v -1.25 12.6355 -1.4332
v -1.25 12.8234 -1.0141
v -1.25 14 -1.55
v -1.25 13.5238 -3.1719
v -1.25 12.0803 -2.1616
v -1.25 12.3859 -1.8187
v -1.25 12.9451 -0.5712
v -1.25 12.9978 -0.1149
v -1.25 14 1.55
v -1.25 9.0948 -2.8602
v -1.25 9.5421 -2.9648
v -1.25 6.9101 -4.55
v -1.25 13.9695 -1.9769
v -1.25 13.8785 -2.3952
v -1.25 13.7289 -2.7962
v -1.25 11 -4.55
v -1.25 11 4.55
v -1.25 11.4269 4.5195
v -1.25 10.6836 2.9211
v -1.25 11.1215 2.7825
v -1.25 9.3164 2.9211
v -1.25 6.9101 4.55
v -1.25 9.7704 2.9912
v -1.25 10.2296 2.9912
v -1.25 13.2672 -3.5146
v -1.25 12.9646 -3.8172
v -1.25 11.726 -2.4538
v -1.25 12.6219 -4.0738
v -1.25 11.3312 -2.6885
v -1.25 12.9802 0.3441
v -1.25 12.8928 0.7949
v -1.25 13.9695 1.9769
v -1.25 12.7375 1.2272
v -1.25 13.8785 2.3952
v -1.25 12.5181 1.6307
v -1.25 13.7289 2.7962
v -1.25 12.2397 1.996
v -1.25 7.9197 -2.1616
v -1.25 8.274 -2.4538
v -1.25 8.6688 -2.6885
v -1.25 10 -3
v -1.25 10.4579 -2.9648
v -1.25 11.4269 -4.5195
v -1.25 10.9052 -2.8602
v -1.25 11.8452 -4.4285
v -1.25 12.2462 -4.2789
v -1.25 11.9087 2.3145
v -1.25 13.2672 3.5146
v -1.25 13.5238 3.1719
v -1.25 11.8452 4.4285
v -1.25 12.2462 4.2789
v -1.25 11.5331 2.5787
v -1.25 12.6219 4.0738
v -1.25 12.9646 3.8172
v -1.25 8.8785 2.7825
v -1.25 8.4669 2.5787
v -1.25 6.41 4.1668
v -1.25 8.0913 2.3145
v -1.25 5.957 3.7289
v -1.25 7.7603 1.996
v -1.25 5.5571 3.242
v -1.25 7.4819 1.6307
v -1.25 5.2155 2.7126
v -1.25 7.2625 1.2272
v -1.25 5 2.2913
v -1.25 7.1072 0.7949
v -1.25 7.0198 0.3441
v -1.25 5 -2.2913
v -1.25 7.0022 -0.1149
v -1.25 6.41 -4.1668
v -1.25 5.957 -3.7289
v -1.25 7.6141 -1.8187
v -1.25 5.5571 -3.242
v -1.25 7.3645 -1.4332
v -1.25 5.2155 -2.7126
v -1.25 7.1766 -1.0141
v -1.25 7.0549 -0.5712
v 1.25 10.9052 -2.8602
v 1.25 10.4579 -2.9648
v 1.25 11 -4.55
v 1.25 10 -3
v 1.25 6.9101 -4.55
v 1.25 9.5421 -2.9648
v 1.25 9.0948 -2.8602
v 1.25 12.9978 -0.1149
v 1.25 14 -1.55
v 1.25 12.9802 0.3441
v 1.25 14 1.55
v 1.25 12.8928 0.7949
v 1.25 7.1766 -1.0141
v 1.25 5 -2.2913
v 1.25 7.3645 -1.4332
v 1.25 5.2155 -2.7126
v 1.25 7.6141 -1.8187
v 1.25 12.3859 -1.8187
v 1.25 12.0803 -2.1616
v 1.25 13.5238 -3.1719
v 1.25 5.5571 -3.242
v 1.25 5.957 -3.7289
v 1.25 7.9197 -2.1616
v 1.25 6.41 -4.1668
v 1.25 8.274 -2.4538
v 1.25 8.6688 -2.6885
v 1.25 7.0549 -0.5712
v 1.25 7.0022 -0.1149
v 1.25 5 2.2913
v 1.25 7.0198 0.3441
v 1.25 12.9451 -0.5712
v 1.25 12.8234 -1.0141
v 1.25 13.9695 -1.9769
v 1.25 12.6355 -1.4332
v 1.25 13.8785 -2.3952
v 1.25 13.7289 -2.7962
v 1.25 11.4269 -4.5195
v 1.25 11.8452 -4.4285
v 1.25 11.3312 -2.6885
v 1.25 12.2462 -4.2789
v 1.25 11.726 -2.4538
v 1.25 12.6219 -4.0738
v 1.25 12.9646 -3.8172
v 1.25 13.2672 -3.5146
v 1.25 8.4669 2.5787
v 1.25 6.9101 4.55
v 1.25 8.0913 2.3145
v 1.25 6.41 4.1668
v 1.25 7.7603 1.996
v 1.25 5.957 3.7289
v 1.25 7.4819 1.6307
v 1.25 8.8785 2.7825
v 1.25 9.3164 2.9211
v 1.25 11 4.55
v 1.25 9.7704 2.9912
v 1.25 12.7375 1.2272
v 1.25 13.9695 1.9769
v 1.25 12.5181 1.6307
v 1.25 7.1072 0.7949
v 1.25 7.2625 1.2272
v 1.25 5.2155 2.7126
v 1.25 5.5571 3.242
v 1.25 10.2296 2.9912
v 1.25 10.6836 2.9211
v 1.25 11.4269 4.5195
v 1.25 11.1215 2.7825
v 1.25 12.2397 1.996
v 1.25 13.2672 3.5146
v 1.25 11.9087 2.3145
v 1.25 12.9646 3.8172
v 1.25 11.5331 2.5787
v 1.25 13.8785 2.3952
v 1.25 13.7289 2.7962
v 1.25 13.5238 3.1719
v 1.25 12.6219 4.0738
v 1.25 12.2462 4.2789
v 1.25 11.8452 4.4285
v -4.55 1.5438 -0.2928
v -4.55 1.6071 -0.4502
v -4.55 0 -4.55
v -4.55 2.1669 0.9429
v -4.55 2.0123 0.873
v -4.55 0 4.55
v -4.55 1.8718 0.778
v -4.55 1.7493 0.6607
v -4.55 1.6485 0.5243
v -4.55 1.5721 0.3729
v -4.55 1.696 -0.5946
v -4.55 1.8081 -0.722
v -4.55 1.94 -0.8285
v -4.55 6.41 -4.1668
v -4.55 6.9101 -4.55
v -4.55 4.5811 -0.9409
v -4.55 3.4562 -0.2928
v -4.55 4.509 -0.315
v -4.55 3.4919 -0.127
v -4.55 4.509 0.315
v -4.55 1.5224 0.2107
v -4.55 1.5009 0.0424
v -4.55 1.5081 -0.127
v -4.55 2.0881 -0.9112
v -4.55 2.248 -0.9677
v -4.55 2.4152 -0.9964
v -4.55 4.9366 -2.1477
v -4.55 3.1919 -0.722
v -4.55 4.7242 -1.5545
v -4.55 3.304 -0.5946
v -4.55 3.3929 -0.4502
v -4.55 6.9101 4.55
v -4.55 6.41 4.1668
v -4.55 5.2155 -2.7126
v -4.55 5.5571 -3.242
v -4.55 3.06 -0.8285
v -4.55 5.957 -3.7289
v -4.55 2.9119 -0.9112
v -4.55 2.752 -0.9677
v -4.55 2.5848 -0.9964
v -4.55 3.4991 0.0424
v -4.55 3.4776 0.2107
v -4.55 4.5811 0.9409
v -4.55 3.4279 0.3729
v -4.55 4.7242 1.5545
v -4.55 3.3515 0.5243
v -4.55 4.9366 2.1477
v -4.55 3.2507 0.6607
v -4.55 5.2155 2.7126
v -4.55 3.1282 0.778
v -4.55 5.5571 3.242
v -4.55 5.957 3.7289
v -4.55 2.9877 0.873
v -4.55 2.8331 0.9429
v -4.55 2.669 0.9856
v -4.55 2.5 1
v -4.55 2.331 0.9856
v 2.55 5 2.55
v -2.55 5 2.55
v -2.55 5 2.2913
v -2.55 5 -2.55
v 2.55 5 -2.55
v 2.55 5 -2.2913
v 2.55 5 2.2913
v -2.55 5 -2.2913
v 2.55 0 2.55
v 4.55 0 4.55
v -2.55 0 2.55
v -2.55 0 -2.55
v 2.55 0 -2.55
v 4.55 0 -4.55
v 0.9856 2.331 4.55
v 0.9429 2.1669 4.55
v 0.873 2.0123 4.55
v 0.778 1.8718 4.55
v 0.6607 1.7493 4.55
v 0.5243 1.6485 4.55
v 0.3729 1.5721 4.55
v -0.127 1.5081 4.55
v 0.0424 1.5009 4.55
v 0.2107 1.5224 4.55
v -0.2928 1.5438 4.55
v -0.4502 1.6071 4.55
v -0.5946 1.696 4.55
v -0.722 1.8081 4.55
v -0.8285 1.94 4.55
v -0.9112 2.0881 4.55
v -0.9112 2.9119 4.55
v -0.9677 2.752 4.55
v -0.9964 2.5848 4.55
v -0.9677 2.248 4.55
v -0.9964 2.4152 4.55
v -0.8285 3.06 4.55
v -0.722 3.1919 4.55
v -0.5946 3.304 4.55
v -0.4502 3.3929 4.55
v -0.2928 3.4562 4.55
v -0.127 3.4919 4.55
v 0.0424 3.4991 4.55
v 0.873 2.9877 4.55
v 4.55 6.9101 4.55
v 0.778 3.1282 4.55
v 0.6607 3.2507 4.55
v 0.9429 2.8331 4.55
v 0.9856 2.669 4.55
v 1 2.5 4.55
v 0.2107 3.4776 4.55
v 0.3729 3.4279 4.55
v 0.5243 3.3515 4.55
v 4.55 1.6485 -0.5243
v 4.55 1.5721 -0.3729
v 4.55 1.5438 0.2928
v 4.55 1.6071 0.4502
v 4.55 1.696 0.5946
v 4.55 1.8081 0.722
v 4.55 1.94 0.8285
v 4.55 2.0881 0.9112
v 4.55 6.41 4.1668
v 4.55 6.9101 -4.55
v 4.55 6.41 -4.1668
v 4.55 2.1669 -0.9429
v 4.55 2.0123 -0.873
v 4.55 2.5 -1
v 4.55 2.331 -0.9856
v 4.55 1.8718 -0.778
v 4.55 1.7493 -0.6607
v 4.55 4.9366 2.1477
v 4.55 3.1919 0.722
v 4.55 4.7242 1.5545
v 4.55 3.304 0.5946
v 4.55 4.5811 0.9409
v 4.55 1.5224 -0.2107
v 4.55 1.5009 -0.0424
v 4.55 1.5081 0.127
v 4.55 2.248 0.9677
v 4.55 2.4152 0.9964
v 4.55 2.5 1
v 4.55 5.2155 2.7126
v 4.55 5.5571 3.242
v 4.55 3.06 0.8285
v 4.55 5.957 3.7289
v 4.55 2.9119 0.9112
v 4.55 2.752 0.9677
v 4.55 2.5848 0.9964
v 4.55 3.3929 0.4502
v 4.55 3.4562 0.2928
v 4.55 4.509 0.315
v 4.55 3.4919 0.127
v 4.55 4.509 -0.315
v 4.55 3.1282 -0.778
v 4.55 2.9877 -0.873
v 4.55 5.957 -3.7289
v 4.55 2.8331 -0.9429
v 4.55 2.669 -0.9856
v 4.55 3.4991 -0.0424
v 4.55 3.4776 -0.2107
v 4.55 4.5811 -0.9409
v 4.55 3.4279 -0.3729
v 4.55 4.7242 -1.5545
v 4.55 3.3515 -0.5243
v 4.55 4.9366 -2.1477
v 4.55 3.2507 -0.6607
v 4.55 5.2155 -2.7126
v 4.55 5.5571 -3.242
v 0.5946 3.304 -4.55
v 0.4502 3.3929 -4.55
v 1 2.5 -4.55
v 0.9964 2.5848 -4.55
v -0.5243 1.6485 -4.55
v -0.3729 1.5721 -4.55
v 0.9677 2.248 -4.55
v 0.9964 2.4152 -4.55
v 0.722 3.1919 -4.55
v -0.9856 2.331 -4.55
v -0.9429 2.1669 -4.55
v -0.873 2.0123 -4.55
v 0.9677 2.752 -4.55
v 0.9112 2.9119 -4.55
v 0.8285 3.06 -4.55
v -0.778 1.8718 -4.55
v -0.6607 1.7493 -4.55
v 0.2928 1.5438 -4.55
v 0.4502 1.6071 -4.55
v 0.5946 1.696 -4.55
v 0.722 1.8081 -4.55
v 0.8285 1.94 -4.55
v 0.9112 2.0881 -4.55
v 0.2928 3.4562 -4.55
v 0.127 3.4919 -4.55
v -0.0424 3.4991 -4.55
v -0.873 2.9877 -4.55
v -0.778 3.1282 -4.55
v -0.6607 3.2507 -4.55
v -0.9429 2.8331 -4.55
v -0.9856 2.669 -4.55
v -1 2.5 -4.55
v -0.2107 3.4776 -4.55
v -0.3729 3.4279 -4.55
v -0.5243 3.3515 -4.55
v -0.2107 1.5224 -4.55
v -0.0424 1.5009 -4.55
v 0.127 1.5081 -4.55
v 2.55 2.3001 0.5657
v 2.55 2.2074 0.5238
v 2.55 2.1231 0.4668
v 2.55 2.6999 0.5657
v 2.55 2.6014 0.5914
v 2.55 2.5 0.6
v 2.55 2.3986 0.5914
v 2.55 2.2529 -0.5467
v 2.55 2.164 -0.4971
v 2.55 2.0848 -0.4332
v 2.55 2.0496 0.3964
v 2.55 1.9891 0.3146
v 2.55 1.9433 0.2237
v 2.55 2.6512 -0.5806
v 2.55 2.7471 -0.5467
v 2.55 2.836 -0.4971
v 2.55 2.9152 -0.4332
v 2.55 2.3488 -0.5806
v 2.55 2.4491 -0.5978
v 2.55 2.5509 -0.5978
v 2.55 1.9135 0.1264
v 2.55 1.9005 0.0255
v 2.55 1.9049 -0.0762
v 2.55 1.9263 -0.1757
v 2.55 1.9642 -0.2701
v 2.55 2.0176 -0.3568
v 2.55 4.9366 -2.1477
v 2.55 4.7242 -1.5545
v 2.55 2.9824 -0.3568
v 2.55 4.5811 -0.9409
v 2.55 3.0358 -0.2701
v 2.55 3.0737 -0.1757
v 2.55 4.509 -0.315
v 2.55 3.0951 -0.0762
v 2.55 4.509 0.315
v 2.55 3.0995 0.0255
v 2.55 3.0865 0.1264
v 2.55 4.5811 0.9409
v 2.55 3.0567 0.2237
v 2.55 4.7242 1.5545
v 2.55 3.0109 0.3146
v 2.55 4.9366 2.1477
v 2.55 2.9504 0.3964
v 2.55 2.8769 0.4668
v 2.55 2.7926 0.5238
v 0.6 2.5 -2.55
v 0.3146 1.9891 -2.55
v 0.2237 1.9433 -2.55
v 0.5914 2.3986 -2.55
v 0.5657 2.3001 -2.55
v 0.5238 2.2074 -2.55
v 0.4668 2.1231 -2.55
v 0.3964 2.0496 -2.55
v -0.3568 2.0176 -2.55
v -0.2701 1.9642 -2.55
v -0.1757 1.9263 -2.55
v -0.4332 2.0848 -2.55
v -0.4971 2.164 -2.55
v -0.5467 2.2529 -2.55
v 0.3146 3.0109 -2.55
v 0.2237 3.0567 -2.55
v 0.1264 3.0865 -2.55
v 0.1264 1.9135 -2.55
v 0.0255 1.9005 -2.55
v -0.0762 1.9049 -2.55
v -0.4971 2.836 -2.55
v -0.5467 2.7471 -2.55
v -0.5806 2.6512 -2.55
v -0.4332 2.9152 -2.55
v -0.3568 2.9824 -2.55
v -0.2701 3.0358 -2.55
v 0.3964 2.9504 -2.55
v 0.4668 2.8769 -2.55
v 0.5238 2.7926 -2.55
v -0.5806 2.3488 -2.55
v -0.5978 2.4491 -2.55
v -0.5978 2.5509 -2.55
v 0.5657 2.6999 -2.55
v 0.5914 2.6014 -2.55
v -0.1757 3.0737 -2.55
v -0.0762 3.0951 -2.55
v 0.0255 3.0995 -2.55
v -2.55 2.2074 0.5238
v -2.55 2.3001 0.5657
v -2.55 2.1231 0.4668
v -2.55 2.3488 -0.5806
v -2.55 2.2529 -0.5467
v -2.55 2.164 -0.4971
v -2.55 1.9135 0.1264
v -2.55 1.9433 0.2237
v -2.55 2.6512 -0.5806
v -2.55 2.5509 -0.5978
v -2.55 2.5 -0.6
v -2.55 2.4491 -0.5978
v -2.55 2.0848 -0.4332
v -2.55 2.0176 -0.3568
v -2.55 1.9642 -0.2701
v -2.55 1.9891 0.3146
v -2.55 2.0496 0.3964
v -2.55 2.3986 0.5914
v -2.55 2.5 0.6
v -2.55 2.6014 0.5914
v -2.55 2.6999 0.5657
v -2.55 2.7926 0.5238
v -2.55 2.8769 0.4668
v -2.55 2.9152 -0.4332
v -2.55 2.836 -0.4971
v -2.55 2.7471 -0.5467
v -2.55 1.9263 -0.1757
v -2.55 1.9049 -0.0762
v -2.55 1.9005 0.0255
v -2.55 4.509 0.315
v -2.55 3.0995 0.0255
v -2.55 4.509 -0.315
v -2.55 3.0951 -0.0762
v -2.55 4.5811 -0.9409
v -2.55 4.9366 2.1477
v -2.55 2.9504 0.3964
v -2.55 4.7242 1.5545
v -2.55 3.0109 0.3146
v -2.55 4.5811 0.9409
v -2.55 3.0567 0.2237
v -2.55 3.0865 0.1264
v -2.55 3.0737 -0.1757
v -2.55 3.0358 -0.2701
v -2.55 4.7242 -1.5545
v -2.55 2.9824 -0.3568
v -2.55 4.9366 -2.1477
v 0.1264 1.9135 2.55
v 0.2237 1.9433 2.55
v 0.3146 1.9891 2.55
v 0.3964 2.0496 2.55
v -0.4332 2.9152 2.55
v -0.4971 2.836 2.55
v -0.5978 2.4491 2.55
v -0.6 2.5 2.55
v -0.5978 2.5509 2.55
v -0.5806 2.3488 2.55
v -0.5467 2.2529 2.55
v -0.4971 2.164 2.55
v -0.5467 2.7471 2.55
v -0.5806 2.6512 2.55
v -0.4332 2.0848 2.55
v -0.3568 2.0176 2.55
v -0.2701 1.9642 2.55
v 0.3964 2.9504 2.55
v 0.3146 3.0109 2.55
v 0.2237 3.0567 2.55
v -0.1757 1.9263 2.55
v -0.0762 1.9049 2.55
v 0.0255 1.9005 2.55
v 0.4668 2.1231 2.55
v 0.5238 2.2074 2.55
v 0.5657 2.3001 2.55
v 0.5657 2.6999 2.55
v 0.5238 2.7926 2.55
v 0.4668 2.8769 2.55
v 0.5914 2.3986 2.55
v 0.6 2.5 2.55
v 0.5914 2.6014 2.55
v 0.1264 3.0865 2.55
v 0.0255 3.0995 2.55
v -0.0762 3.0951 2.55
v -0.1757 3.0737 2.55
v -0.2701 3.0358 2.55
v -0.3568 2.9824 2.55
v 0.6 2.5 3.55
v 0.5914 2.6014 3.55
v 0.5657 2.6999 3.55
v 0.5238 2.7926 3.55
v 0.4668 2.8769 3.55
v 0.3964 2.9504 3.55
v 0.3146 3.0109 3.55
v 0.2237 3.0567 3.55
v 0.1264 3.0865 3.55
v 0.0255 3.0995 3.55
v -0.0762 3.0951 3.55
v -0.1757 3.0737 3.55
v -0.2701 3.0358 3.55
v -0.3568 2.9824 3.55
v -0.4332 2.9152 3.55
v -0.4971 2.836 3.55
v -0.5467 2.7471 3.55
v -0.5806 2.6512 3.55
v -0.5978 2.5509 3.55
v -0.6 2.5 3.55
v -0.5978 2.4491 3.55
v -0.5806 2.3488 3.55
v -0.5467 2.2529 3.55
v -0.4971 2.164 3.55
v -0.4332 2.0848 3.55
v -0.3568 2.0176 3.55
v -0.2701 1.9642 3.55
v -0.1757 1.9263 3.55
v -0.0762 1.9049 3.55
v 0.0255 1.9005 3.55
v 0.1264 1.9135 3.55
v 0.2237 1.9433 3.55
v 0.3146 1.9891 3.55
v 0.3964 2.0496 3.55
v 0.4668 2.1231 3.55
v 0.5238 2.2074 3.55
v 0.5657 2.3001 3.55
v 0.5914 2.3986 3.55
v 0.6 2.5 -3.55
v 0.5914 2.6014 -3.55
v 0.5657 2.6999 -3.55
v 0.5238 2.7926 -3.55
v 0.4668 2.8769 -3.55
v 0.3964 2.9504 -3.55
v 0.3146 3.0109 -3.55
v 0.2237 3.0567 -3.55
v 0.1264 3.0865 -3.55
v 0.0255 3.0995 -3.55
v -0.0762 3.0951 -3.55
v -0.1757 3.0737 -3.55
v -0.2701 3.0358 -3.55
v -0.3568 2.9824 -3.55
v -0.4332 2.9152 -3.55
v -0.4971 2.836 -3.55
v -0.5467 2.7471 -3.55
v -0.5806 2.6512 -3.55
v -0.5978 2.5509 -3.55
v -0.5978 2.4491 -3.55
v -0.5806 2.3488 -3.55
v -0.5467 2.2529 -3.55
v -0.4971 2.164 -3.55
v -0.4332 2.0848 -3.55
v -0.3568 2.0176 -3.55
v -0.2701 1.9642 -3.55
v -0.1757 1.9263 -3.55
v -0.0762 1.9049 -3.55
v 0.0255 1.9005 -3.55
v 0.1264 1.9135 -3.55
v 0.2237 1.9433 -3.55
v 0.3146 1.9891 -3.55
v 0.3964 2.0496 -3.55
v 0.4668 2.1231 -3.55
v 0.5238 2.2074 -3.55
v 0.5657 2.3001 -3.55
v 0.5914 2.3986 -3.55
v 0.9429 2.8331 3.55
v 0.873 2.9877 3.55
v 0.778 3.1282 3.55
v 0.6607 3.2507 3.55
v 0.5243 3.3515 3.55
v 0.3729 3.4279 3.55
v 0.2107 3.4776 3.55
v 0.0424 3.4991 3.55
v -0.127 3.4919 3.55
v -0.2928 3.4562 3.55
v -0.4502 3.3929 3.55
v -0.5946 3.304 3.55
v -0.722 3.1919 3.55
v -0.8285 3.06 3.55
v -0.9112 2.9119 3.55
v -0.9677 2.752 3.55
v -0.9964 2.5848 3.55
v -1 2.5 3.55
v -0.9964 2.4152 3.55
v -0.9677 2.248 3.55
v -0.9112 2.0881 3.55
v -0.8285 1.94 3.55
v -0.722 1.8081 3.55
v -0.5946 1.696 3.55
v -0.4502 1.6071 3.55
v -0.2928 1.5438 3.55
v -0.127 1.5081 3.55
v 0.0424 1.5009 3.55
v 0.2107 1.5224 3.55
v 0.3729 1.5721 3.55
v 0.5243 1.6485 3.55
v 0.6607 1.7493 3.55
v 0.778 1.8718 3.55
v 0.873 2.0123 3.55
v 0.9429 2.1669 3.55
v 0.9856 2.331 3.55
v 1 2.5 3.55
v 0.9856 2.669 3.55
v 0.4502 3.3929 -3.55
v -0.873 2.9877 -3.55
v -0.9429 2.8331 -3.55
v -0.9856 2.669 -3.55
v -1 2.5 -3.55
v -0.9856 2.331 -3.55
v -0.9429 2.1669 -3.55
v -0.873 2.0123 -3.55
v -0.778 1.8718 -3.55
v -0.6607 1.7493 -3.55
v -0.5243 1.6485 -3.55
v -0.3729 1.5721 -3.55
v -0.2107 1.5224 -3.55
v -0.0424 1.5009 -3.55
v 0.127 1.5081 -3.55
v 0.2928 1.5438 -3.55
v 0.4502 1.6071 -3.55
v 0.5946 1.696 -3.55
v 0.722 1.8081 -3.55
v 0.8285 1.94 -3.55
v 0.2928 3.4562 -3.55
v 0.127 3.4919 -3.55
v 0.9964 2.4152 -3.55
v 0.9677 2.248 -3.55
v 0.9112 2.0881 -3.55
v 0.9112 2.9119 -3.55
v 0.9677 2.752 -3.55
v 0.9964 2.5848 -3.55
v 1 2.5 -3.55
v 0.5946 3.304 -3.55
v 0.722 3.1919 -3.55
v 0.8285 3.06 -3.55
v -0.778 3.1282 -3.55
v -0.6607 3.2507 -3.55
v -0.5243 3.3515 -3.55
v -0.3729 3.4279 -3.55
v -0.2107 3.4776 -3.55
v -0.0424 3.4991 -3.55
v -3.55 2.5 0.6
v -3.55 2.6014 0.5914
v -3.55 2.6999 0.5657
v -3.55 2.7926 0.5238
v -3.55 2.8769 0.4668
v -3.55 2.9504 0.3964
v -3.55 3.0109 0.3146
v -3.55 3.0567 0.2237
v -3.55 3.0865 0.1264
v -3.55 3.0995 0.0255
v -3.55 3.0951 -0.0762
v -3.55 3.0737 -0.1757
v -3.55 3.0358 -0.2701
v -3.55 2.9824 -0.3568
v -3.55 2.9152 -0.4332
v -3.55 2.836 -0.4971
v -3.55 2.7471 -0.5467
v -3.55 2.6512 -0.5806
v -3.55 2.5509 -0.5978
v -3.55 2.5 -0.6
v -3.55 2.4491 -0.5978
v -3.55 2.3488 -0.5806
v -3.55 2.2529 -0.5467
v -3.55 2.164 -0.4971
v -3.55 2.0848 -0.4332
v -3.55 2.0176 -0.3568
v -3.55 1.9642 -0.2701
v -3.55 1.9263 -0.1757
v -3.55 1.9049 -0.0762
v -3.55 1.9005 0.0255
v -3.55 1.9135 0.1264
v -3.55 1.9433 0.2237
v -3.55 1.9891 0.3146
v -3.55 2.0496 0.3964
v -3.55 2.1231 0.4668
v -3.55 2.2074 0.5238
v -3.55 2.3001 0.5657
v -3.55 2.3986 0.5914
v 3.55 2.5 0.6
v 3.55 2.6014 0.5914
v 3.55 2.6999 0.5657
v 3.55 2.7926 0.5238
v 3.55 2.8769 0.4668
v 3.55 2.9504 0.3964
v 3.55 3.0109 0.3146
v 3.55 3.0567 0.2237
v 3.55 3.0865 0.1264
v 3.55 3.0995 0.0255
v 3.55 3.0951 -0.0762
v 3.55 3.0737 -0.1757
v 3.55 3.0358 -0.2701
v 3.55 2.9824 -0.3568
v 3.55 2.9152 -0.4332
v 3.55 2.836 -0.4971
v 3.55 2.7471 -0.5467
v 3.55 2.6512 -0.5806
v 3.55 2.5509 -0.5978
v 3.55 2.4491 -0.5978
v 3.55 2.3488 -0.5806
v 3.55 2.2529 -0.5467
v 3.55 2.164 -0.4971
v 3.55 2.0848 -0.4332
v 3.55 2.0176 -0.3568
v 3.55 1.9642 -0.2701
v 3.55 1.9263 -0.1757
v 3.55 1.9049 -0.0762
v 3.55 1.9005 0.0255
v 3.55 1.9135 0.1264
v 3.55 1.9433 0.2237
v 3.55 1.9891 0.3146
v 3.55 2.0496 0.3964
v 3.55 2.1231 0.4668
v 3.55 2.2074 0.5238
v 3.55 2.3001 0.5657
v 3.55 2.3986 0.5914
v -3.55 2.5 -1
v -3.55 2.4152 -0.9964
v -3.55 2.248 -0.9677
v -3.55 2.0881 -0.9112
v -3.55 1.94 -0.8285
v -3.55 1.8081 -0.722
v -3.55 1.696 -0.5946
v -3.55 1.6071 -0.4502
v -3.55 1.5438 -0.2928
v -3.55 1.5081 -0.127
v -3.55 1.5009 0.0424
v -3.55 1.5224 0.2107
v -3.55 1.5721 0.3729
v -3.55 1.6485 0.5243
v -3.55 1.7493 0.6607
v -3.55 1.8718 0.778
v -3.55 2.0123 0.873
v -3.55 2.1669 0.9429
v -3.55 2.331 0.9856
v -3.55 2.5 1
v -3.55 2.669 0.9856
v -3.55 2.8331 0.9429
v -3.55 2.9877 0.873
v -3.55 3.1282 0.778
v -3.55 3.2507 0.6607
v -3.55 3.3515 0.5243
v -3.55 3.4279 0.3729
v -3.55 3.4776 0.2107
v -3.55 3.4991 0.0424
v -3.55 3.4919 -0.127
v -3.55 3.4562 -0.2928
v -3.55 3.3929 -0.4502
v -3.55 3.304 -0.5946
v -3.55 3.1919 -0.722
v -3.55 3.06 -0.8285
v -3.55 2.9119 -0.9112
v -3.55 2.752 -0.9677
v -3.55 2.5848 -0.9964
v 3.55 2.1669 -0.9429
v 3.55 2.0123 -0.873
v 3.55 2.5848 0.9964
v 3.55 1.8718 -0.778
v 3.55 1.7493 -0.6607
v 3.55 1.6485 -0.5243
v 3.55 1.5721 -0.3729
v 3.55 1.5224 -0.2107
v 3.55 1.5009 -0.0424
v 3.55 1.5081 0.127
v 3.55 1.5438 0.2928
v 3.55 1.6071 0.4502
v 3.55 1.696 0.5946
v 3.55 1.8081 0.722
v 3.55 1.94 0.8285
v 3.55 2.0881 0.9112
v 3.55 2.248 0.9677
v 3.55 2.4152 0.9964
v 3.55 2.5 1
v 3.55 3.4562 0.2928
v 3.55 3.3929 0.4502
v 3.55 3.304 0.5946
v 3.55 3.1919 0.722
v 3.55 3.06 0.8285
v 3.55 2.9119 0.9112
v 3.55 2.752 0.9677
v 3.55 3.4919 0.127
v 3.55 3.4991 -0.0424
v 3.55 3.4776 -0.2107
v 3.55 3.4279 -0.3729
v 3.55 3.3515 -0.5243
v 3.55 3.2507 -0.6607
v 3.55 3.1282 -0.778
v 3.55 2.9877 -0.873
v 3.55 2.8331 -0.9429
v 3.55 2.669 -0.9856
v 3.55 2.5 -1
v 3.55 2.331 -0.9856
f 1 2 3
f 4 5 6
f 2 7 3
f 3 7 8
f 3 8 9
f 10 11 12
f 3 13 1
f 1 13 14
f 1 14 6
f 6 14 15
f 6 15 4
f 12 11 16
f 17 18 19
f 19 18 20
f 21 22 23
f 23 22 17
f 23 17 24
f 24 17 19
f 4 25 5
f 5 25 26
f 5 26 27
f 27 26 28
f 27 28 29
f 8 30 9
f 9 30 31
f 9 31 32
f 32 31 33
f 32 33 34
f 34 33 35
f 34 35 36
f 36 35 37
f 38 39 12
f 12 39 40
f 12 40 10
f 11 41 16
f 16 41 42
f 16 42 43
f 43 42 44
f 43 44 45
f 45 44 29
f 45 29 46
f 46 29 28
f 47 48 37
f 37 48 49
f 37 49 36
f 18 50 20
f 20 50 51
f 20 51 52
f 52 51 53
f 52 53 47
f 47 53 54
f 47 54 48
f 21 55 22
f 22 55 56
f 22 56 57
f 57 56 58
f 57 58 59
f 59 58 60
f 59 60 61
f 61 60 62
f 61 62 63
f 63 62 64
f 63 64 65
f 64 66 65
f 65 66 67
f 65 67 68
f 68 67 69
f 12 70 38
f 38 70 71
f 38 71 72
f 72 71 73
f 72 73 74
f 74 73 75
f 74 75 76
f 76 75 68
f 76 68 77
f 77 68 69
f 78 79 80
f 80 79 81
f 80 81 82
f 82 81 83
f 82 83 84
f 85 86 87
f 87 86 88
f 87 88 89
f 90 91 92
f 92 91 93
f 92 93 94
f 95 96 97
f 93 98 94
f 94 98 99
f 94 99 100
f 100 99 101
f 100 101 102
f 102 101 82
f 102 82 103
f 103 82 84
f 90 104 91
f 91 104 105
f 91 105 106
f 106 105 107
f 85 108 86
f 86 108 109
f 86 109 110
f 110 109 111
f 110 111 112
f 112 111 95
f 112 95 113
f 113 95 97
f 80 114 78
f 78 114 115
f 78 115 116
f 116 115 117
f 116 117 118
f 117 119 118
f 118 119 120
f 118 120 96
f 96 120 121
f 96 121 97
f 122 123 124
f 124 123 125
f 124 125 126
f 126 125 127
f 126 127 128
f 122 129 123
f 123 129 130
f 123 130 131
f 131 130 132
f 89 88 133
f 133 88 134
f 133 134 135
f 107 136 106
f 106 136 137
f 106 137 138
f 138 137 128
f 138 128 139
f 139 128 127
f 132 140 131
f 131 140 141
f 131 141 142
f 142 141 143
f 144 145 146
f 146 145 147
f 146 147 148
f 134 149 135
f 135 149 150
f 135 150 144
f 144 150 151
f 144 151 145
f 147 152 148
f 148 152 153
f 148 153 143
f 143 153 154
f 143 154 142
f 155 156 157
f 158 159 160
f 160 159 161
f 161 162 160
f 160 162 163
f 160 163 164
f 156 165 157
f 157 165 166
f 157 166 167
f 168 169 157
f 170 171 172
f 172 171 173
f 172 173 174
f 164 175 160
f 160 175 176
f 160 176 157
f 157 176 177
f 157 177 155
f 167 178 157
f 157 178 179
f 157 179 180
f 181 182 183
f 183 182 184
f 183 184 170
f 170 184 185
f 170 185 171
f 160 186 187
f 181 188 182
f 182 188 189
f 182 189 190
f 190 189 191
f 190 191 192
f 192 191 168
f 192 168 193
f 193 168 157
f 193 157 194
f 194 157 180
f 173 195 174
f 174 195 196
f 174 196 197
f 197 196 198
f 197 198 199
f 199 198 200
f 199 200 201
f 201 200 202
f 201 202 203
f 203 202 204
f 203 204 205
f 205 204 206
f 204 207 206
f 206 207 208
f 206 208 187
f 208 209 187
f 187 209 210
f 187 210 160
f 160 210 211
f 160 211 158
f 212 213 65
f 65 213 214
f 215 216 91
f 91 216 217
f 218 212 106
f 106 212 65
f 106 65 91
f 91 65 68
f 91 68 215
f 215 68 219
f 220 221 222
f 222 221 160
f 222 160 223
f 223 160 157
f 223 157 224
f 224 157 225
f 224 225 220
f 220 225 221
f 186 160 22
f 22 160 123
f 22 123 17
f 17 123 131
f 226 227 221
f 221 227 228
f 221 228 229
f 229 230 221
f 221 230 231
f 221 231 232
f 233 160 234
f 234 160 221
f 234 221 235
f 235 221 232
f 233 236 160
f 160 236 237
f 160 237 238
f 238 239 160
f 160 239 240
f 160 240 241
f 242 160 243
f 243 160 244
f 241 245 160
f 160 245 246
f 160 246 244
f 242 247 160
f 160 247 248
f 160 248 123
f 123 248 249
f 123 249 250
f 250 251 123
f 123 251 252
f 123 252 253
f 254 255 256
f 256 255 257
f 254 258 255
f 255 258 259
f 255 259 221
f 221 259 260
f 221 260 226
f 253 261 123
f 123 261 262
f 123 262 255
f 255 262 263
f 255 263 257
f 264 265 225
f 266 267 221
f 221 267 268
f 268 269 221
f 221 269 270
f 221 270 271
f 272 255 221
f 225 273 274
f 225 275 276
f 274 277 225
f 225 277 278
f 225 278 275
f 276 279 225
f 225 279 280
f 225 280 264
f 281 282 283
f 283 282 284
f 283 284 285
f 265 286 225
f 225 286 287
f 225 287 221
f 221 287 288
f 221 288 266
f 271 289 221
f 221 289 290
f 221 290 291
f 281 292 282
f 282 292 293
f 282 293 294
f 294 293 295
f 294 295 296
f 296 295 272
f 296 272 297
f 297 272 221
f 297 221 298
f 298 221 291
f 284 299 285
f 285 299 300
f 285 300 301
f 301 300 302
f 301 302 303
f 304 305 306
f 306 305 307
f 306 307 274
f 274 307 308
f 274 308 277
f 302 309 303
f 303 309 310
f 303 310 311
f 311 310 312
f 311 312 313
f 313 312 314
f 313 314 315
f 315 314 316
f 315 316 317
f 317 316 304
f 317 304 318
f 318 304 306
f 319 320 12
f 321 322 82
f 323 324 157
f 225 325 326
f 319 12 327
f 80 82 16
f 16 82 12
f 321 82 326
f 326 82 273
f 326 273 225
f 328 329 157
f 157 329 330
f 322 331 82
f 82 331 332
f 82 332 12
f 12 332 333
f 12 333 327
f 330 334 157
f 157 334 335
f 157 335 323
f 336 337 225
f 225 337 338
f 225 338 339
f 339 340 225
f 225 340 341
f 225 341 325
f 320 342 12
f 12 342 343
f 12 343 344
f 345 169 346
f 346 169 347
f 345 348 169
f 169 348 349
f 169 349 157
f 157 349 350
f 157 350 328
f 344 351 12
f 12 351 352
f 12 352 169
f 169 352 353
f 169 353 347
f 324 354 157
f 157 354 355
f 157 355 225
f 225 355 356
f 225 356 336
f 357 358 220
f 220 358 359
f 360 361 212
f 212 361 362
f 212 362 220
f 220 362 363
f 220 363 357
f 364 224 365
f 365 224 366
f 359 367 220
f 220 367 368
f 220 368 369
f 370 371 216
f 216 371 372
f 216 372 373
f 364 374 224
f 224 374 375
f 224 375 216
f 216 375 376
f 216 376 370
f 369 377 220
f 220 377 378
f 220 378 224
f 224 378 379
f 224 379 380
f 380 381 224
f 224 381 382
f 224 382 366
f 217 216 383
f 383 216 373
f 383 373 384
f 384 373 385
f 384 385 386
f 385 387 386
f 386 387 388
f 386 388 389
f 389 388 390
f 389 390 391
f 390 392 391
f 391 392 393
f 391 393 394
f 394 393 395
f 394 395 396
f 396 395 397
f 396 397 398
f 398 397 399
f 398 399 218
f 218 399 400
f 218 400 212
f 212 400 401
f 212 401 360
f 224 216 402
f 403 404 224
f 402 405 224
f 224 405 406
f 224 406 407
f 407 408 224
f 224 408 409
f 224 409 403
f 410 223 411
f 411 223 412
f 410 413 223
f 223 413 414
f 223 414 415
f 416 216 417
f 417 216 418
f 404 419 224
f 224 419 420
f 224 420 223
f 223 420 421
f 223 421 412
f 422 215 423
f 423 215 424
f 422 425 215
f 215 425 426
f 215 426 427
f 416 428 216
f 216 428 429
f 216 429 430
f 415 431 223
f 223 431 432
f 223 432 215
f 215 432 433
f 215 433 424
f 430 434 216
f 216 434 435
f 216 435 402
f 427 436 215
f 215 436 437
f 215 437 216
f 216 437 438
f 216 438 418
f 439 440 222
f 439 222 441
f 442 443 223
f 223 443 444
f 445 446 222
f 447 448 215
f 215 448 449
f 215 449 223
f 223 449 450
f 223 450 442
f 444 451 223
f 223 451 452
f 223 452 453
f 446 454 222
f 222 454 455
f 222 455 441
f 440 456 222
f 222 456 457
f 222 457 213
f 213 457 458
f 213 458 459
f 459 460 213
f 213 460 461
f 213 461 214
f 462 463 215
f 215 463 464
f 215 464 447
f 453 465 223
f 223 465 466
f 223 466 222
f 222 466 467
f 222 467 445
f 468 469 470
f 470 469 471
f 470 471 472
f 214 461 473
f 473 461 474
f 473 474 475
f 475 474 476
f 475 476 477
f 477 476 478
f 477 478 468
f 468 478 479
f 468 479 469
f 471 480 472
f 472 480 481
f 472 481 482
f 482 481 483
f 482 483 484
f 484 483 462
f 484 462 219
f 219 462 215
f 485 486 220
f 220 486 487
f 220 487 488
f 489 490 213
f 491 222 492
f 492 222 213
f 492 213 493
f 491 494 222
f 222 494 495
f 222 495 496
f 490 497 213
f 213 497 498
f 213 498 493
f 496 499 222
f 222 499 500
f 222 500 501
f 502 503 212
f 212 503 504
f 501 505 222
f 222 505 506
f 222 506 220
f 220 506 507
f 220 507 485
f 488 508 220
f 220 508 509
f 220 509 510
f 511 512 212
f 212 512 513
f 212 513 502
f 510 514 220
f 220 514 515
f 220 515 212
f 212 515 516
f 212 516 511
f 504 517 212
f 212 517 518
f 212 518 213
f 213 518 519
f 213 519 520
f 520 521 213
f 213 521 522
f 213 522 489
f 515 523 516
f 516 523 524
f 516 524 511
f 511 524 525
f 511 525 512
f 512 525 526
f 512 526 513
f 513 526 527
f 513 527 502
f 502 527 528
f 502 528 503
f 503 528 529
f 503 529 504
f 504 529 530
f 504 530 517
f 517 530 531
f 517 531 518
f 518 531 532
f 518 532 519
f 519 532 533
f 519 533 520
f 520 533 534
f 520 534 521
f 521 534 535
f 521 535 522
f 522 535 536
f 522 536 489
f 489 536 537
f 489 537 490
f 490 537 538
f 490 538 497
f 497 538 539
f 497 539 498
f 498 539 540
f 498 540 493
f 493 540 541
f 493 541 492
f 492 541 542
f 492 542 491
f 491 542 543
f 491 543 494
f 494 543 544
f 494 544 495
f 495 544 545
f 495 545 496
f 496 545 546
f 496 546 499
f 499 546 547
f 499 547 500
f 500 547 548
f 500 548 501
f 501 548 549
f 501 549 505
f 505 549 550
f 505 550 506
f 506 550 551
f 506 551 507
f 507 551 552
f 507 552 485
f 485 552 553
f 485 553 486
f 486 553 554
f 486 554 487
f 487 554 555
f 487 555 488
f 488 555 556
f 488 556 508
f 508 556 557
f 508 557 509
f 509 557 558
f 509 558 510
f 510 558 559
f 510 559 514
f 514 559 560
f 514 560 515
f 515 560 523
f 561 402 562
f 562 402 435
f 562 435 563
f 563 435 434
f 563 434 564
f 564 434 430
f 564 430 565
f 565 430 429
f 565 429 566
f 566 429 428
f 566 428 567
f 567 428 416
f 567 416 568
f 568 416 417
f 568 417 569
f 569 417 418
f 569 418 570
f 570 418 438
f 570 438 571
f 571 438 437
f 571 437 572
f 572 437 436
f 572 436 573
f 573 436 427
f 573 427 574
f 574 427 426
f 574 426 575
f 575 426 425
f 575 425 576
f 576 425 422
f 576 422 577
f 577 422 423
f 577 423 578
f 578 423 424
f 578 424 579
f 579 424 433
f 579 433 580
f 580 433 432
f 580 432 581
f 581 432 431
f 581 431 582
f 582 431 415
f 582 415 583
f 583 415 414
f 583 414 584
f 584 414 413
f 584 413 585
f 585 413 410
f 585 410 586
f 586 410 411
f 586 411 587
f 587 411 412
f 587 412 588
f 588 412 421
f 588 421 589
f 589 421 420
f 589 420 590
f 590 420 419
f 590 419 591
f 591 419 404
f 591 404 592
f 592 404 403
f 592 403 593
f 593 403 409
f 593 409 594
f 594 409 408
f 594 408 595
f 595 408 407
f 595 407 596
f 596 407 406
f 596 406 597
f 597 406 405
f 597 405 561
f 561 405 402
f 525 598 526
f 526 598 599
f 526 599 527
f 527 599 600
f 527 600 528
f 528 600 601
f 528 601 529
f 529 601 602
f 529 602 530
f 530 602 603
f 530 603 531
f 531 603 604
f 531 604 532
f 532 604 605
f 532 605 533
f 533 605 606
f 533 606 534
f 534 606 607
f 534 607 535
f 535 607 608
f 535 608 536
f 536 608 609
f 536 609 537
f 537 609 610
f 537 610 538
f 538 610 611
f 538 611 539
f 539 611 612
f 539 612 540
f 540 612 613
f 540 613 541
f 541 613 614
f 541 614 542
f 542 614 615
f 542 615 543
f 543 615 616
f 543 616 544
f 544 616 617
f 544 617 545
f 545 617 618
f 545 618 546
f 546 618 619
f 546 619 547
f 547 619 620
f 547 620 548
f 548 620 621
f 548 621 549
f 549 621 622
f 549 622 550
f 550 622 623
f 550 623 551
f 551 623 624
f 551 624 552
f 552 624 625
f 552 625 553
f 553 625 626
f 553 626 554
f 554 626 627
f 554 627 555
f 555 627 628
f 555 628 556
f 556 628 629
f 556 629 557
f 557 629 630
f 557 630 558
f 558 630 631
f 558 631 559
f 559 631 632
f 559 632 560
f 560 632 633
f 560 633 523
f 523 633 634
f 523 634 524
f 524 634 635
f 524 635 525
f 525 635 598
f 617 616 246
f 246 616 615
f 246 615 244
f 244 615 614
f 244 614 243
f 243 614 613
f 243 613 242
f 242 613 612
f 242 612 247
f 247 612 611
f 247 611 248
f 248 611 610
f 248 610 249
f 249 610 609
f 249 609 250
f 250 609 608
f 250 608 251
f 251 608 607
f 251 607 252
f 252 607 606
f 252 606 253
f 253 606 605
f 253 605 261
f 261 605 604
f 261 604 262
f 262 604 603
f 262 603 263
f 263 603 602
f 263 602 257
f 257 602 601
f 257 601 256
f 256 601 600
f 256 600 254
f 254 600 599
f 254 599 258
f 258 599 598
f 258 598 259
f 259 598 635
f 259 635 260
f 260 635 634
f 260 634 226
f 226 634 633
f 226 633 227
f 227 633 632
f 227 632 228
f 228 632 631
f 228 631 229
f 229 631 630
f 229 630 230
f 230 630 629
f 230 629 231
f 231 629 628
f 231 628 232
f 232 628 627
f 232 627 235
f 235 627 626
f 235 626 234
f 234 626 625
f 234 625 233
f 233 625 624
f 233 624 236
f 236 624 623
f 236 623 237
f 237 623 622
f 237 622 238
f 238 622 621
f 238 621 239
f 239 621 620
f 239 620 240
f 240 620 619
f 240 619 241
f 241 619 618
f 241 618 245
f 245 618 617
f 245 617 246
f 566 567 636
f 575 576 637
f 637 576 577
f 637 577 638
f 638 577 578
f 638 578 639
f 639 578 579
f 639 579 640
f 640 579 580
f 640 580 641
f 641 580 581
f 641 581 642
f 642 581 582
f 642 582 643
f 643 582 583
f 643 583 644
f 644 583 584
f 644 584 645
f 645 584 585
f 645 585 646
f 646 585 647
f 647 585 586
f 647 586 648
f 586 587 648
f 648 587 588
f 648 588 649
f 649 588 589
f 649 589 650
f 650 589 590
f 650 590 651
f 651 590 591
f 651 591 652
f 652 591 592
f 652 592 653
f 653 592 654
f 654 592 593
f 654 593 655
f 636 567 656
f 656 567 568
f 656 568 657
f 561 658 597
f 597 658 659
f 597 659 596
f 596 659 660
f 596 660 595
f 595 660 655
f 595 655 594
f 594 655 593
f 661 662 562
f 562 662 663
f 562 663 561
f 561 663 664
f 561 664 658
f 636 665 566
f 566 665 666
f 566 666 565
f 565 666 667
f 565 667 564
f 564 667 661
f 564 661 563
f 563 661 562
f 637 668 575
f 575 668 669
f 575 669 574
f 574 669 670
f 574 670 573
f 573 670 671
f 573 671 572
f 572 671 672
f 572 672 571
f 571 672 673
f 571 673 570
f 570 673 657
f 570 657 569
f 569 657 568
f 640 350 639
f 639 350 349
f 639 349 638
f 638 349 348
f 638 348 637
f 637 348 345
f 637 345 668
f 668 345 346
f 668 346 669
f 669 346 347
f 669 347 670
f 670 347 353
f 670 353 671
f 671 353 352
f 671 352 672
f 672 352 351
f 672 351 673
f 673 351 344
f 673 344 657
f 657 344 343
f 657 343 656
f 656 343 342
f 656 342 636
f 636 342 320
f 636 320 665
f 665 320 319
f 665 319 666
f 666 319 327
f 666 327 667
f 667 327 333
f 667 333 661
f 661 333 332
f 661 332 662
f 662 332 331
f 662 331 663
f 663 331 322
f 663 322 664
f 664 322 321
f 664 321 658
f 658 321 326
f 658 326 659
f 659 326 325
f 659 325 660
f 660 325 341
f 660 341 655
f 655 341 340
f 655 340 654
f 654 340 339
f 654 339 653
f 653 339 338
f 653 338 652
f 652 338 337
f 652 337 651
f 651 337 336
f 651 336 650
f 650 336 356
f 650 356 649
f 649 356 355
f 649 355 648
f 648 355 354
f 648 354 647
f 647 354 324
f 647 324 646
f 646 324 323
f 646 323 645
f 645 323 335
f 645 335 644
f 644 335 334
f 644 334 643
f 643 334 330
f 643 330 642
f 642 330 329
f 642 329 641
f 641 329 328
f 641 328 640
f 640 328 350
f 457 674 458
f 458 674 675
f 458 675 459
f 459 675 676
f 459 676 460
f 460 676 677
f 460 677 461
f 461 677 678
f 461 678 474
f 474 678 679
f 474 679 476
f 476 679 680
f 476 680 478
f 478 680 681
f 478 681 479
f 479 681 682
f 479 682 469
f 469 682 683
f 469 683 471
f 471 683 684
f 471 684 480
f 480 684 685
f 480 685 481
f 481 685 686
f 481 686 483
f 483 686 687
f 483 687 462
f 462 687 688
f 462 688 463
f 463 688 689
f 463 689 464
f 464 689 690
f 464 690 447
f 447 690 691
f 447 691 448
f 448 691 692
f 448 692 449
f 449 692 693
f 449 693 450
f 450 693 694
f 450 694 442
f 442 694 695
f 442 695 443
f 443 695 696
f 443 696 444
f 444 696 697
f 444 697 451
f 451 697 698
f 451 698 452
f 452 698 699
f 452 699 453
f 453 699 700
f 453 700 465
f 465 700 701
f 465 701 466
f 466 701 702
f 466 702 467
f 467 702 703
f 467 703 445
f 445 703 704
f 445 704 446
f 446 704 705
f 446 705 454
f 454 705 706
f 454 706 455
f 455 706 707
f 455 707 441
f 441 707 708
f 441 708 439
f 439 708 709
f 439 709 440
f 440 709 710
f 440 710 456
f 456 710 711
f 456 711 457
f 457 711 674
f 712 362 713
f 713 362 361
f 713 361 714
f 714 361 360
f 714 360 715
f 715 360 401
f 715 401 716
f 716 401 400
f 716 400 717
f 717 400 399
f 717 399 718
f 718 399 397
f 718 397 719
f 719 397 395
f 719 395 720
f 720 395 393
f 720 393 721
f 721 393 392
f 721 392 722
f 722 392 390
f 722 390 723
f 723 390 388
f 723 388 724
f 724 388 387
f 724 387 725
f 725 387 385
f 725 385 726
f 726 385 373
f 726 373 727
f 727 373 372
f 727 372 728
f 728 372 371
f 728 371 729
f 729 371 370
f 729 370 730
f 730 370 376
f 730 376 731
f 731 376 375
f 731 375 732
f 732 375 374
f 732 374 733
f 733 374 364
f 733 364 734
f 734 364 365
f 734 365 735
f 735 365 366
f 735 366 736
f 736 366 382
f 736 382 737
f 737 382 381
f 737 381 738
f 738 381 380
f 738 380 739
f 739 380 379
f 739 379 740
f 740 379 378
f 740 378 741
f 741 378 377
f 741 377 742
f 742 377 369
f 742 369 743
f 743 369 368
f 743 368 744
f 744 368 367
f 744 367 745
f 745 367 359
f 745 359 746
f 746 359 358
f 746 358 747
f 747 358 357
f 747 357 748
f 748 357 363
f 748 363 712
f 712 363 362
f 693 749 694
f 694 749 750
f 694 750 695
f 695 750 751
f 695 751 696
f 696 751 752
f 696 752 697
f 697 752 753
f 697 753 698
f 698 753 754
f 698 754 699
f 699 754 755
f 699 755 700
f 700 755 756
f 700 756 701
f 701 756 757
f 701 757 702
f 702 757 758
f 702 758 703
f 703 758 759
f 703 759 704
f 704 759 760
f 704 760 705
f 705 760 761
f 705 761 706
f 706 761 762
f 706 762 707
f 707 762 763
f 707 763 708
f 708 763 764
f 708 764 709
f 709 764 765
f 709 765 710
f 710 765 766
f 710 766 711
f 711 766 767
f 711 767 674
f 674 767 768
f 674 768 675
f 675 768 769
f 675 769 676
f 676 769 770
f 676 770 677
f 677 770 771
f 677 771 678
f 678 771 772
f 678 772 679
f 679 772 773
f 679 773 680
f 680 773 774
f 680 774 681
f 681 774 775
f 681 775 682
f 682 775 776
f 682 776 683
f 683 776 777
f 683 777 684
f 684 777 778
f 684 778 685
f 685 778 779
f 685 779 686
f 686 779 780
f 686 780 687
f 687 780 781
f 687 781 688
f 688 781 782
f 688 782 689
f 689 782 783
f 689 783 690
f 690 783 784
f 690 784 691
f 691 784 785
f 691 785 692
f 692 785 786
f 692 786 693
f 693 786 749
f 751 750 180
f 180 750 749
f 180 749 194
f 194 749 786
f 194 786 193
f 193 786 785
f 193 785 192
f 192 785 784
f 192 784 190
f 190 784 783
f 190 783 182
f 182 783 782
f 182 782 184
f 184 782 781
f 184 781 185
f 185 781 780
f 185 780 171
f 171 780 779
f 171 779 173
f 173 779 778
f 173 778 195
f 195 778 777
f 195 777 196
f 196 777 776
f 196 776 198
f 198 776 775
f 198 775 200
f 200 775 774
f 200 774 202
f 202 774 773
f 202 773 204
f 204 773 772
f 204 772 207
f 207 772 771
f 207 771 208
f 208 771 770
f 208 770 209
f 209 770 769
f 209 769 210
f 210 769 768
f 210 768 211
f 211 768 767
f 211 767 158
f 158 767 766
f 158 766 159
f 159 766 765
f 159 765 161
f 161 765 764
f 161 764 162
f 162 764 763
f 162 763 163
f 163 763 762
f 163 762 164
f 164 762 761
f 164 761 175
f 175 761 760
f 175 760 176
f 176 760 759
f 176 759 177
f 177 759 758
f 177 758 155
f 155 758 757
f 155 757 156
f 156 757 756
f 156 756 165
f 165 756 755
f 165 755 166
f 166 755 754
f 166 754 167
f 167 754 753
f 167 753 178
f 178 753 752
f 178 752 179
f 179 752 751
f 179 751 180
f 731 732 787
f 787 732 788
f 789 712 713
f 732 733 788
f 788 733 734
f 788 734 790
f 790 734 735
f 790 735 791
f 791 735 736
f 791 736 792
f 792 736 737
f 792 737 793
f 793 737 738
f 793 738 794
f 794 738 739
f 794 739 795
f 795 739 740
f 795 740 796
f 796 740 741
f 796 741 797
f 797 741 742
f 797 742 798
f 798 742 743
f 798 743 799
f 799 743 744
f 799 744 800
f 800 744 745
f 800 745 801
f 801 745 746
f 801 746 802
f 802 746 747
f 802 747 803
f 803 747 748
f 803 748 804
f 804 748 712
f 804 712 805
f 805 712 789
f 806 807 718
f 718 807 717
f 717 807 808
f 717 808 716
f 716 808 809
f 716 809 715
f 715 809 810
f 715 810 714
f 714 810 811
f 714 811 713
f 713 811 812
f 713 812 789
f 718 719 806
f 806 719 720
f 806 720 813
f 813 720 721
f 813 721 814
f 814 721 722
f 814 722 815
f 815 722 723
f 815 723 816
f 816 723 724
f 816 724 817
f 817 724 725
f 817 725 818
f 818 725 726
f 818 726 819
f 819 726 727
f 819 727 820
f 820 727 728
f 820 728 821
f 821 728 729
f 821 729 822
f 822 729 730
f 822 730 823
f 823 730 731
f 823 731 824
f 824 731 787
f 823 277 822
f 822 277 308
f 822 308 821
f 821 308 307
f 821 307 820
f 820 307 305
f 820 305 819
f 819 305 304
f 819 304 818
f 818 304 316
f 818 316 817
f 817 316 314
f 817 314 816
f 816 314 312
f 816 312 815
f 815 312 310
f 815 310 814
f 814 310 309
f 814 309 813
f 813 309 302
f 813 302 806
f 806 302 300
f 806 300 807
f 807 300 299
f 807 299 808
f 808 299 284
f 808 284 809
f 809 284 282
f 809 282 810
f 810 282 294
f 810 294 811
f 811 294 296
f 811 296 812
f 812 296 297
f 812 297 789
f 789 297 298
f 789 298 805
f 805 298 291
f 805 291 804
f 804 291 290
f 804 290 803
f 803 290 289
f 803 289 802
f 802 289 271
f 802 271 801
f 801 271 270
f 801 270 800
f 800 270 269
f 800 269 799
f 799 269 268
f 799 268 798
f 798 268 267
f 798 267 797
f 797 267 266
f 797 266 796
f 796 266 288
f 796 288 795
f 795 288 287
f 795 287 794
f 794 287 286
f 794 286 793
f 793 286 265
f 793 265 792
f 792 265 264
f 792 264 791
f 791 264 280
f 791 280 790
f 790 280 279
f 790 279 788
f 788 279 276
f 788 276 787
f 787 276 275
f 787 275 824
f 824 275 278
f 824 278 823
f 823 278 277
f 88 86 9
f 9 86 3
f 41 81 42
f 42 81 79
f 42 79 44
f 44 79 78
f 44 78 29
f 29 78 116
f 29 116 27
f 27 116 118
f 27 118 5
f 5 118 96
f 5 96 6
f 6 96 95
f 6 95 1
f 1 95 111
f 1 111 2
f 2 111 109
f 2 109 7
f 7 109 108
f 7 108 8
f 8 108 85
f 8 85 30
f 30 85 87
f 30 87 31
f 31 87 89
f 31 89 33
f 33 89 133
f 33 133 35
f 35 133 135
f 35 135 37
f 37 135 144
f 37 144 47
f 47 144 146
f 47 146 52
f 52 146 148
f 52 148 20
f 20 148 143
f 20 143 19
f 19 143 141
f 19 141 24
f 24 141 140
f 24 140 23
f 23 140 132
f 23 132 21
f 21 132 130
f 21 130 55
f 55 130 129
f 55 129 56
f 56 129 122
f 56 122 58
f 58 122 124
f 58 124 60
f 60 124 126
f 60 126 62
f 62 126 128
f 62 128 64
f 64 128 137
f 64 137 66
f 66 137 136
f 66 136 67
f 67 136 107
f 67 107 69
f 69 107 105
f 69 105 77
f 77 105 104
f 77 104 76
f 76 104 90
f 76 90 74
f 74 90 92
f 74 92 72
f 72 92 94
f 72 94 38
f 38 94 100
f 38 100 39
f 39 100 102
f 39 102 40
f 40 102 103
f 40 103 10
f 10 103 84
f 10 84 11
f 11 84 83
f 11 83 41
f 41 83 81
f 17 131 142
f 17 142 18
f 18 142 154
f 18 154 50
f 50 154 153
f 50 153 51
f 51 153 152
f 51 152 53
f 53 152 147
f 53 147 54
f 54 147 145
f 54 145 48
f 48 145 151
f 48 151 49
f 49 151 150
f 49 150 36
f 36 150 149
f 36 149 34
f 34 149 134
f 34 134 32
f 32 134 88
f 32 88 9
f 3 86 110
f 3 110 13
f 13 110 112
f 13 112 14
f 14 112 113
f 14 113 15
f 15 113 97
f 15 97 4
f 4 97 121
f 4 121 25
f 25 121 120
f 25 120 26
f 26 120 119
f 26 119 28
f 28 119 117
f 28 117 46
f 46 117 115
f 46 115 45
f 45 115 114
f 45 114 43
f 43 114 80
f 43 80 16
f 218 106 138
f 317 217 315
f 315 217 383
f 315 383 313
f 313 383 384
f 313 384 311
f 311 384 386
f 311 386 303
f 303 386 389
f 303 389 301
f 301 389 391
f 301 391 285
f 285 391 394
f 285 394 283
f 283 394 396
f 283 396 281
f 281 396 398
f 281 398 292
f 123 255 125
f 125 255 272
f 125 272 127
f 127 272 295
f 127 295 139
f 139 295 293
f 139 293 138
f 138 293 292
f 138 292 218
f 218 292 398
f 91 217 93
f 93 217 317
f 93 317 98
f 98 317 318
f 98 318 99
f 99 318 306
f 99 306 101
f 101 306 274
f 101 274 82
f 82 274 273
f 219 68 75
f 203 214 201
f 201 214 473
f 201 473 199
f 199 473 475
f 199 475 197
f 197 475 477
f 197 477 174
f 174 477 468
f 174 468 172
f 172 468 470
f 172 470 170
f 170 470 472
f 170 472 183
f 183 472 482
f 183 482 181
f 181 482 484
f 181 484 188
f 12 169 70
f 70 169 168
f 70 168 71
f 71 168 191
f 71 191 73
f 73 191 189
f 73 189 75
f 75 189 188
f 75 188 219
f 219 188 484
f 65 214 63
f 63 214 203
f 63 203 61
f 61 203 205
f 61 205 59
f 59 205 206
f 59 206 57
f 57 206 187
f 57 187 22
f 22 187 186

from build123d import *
from build123d.topology import SkipClean

# Parameters (mm, degrees)
SKETCH_1_W           = 9.1
SKETCH_1_H           = 9.1
SKETCH_1_W_2         = 5.1
SKETCH_1_H_2         = 5.1
EXTRUDE_1_DEPTH      = 5
SKETCH_2_R           = 0.6
CUT_EXTRUDE_1_DEPTH  = 12.336335387
SKETCH_2_3_R         = 1
CUT_EXTRUDE_2_DEPTH  = 1
CUT_EXTRUDE_START    = -8.1
SKETCH_2_4_R         = 1
CUT_EXTRUDE_3_DEPTH  = 1
SKETCH_3_R           = 0.6
CUT_EXTRUDE_4_DEPTH  = 12.336335387
SKETCH_3_3_R         = 1
CUT_EXTRUDE_5_DEPTH  = 1
SKETCH_3_4_R         = 1
CUT_EXTRUDE_6_DEPTH  = 1
SKETCH_5_W           = 9.1
SKETCH_5_H           = 9.1
EXTRUDE_2_DEPTH      = 1
EXTRUDE_START        = 1
SKETCH_5_4_W         = 2.5
SKETCH_5_4_H         = 9.1
EXTRUDE_3_DEPTH      = 8
SKETCH_6_R           = 3
CUT_EXTRUDE_7_DEPTH  = 16.822215395
FILLET_1_R           = 3
CUT_EXTRUDE_11_REACH = 19.306
CUT_EXTRUDE_START_2  = -5.8
CUT_EXTRUDE_12_DEPTH = 3.3
EXTRUDE_4_DEPTH      = 3.3
EXTRUDE_START_2      = -5.8
EXTRUDE_5_DEPTH      = 3.3


with BuildPart() as part:
    # 草图1 → 凸台-拉伸1 (new body)
    with BuildSketch(Plane(origin=(0, 0, 0), x_dir=(1, 0, 0), z_dir=(0, 1, 0))):
        Rectangle(SKETCH_1_W, SKETCH_1_H)
        Rectangle(SKETCH_1_W_2, SKETCH_1_H_2, mode=Mode.SUBTRACT)
    extrude(amount=EXTRUDE_1_DEPTH)

    # 草图2 → 切除-拉伸1 (cut, through all)
    with BuildSketch(Plane.XY.offset(4.55)):
        with Locations((0, 2.5)):
            Circle(SKETCH_2_R)
    extrude(amount=-CUT_EXTRUDE_1_DEPTH, mode=Mode.SUBTRACT)

    # 草图2<3> → 切除-拉伸2 (cut)
    with BuildSketch(Plane.XY.offset(4.55)):
        with Locations((0, 2.5)):
            Circle(SKETCH_2_3_R)
    extrude(amount=-CUT_EXTRUDE_2_DEPTH, mode=Mode.SUBTRACT)

    # 草图2<4> → 切除-拉伸3 (cut)
    with BuildSketch(Plane.XY.offset(4.55).offset(CUT_EXTRUDE_START)):
        with Locations((0, 2.5)):
            Circle(SKETCH_2_4_R)
    extrude(amount=-CUT_EXTRUDE_3_DEPTH, mode=Mode.SUBTRACT)

    # 草图3 → 切除-拉伸4 (cut, through all)
    with BuildSketch(Plane.ZY.offset(4.55)):
        with Locations((0, 2.5)):
            Circle(SKETCH_3_R)
    extrude(amount=-CUT_EXTRUDE_4_DEPTH, mode=Mode.SUBTRACT)

    # 草图3<3> → 切除-拉伸5 (cut)
    with BuildSketch(Plane.ZY.offset(4.55)):
        with Locations((0, 2.5)):
            Circle(SKETCH_3_3_R)
    extrude(amount=-CUT_EXTRUDE_5_DEPTH, mode=Mode.SUBTRACT)

    # 草图3<4> → 切除-拉伸6 (cut)
    with BuildSketch(Plane.ZY.offset(4.55).offset(CUT_EXTRUDE_START)):
        with Locations((0, 2.5)):
            Circle(SKETCH_3_4_R)
    extrude(amount=-CUT_EXTRUDE_6_DEPTH, mode=Mode.SUBTRACT)

    # 草图5 → 凸台-拉伸2 (add)
    with BuildSketch(Plane(origin=(0, 5, 0), x_dir=(1, 0, 0), z_dir=(0, 1, 0))):
        Rectangle(SKETCH_5_W, SKETCH_5_H)
    extrude(amount=EXTRUDE_2_DEPTH)

    # 草图5<4> → 凸台-拉伸3 (add)
    with BuildSketch(Plane(origin=(0, 5, 0), x_dir=(1, 0, 0), z_dir=(0, 1, 0)).offset(EXTRUDE_START)):
        Rectangle(SKETCH_5_4_W, SKETCH_5_4_H)
    extrude(amount=EXTRUDE_3_DEPTH)

    # 草图6 → 切除-拉伸7 (cut, through all)
    with BuildSketch(Plane(origin=(1.25, 0, 0), x_dir=(0, 0, -1), z_dir=(1, 0, 0))):
        with Locations((0, 10)):
            Circle(SKETCH_6_R)
    extrude(amount=-CUT_EXTRUDE_7_DEPTH, mode=Mode.SUBTRACT)

    # 圆角1
    fillet_1_edges = [part.edges().sort_by_distance(p)[0] for p in [
        (0, 14, 4.55),
        (0, 14, -4.55),
    ]]
    fillet(fillet_1_edges, radius=FILLET_1_R)

    # 切除-拉伸11: up to this face of the body (flat: up to its plane)
    cut_extrude_11_end = Plane(part.part.faces().sort_by_distance((1.25, 8.5, 4.428834823))[0])
    # 草图7 → 切除-拉伸11 (cut, up to the picked face)
    with BuildSketch(Plane(origin=(4.55, 0, 0), x_dir=(0, 0, -1), z_dir=(1, 0, 0)), mode=Mode.PRIVATE) as cut_extrude_11_sk1:
        with BuildLine():
            ThreePointArc((5.5, 10), (-1.616322988, 15.257138005), (-4.55, 6.910097089))
            ThreePointArc((-4.55, 6.910097089), (-4.187258154, 6.43392805), (-3.774917218, 6))
            Line((-3.774917218, 6), (3.774917218, 6))
            ThreePointArc((3.774917218, 6), (4.187258154, 6.43392805), (4.55, 6.910097089))
            ThreePointArc((4.55, 6.910097089), (5.257138005, 8.383677012), (5.5, 10))
        make_face()
    cut_extrude_11_tool1 = split(extrude(cut_extrude_11_sk1.sketch, amount=-CUT_EXTRUDE_11_REACH, mode=Mode.PRIVATE), bisect_by=cut_extrude_11_end, keep=Keep.BOTH, mode=Mode.PRIVATE)
    # 草图7 → 切除-拉伸11 (cut, up to the picked face)
    with BuildSketch(Plane(origin=(4.55, 0, 0), x_dir=(0, 0, -1), z_dir=(1, 0, 0)), mode=Mode.PRIVATE) as cut_extrude_11_sk2:
        with BuildLine():
            Line((3.774917218, 6), (-3.774917218, 6))
            ThreePointArc((-3.774917218, 6), (0, 4.5), (3.774917218, 6))
        make_face()
    cut_extrude_11_tool2 = split(extrude(cut_extrude_11_sk2.sketch, amount=-CUT_EXTRUDE_11_REACH, mode=Mode.PRIVATE), bisect_by=cut_extrude_11_end, keep=Keep.BOTH, mode=Mode.PRIVATE)
    add(cut_extrude_11_tool1.solids().sort_by(Axis((4.55, 10.411022, 0), (-1, 0, 0)))[0], mode=Mode.SUBTRACT)
    add(cut_extrude_11_tool2.solids().sort_by(Axis((4.55, 5.392383, 0), (-1, 0, 0)))[0], mode=Mode.SUBTRACT)

    # 草图7<2> → 切除-拉伸12 (cut)
    with BuildSketch(Plane(origin=(4.55, 0, 0), x_dir=(0, 0, -1), z_dir=(1, 0, 0)).offset(CUT_EXTRUDE_START_2)):
        with BuildLine():
            ThreePointArc((5.5, 10), (-1.616322988, 15.257138005), (-4.55, 6.910097089))
            ThreePointArc((-4.55, 6.910097089), (-4.187258154, 6.43392805), (-3.774917218, 6))
            Line((-3.774917218, 6), (3.774917218, 6))
            ThreePointArc((3.774917218, 6), (4.187258154, 6.43392805), (4.55, 6.910097089))
            ThreePointArc((4.55, 6.910097089), (5.257138005, 8.383677012), (5.5, 10))
        make_face()
        with BuildLine():
            Line((3.774917218, 6), (-3.774917218, 6))
            ThreePointArc((-3.774917218, 6), (0, 4.5), (3.774917218, 6))
        make_face()
    extrude(amount=-CUT_EXTRUDE_12_DEPTH, mode=Mode.SUBTRACT)

    # 草图7<5> → 凸台-拉伸4 (add)
    with SkipClean():  # the faces are left unmerged after this step: merging them gives an invalid solid
        with BuildSketch(Plane(origin=(4.55, 0, 0), x_dir=(0, 0, -1), z_dir=(1, 0, 0))):
            with BuildLine():
                ThreePointArc((-3.774917218, 6), (-4.187258154, 6.43392805), (-4.55, 6.910097089))
                Line((-4.55, 6.910097089), (-4.55, 6))
                Line((-4.55, 6), (-3.774917218, 6))
            make_face()
            with BuildLine():
                Line((4.55, 6), (4.55, 6.910097089))
                ThreePointArc((4.55, 6.910097089), (4.187258154, 6.43392805), (3.774917218, 6))
                Line((3.774917218, 6), (4.55, 6))
            make_face()
        extrude(amount=-EXTRUDE_4_DEPTH)

    # 草图7<6> → 凸台-拉伸5 (add)
    with SkipClean():  # the faces are left unmerged after this step: merging them gives an invalid solid
        with BuildSketch(Plane(origin=(4.55, 0, 0), x_dir=(0, 0, -1), z_dir=(1, 0, 0)).offset(EXTRUDE_START_2)):
            with BuildLine():
                ThreePointArc((-3.774917218, 6), (-4.187258154, 6.43392805), (-4.55, 6.910097089))
                Line((-4.55, 6.910097089), (-4.55, 6))
                Line((-4.55, 6), (-3.774917218, 6))
            make_face()
            with BuildLine():
                Line((4.55, 6), (4.55, 6.910097089))
                ThreePointArc((4.55, 6.910097089), (4.187258154, 6.43392805), (3.774917218, 6))
                Line((3.774917218, 6), (4.55, 6))
            make_face()
        extrude(amount=-EXTRUDE_5_DEPTH)


solid = part.part
